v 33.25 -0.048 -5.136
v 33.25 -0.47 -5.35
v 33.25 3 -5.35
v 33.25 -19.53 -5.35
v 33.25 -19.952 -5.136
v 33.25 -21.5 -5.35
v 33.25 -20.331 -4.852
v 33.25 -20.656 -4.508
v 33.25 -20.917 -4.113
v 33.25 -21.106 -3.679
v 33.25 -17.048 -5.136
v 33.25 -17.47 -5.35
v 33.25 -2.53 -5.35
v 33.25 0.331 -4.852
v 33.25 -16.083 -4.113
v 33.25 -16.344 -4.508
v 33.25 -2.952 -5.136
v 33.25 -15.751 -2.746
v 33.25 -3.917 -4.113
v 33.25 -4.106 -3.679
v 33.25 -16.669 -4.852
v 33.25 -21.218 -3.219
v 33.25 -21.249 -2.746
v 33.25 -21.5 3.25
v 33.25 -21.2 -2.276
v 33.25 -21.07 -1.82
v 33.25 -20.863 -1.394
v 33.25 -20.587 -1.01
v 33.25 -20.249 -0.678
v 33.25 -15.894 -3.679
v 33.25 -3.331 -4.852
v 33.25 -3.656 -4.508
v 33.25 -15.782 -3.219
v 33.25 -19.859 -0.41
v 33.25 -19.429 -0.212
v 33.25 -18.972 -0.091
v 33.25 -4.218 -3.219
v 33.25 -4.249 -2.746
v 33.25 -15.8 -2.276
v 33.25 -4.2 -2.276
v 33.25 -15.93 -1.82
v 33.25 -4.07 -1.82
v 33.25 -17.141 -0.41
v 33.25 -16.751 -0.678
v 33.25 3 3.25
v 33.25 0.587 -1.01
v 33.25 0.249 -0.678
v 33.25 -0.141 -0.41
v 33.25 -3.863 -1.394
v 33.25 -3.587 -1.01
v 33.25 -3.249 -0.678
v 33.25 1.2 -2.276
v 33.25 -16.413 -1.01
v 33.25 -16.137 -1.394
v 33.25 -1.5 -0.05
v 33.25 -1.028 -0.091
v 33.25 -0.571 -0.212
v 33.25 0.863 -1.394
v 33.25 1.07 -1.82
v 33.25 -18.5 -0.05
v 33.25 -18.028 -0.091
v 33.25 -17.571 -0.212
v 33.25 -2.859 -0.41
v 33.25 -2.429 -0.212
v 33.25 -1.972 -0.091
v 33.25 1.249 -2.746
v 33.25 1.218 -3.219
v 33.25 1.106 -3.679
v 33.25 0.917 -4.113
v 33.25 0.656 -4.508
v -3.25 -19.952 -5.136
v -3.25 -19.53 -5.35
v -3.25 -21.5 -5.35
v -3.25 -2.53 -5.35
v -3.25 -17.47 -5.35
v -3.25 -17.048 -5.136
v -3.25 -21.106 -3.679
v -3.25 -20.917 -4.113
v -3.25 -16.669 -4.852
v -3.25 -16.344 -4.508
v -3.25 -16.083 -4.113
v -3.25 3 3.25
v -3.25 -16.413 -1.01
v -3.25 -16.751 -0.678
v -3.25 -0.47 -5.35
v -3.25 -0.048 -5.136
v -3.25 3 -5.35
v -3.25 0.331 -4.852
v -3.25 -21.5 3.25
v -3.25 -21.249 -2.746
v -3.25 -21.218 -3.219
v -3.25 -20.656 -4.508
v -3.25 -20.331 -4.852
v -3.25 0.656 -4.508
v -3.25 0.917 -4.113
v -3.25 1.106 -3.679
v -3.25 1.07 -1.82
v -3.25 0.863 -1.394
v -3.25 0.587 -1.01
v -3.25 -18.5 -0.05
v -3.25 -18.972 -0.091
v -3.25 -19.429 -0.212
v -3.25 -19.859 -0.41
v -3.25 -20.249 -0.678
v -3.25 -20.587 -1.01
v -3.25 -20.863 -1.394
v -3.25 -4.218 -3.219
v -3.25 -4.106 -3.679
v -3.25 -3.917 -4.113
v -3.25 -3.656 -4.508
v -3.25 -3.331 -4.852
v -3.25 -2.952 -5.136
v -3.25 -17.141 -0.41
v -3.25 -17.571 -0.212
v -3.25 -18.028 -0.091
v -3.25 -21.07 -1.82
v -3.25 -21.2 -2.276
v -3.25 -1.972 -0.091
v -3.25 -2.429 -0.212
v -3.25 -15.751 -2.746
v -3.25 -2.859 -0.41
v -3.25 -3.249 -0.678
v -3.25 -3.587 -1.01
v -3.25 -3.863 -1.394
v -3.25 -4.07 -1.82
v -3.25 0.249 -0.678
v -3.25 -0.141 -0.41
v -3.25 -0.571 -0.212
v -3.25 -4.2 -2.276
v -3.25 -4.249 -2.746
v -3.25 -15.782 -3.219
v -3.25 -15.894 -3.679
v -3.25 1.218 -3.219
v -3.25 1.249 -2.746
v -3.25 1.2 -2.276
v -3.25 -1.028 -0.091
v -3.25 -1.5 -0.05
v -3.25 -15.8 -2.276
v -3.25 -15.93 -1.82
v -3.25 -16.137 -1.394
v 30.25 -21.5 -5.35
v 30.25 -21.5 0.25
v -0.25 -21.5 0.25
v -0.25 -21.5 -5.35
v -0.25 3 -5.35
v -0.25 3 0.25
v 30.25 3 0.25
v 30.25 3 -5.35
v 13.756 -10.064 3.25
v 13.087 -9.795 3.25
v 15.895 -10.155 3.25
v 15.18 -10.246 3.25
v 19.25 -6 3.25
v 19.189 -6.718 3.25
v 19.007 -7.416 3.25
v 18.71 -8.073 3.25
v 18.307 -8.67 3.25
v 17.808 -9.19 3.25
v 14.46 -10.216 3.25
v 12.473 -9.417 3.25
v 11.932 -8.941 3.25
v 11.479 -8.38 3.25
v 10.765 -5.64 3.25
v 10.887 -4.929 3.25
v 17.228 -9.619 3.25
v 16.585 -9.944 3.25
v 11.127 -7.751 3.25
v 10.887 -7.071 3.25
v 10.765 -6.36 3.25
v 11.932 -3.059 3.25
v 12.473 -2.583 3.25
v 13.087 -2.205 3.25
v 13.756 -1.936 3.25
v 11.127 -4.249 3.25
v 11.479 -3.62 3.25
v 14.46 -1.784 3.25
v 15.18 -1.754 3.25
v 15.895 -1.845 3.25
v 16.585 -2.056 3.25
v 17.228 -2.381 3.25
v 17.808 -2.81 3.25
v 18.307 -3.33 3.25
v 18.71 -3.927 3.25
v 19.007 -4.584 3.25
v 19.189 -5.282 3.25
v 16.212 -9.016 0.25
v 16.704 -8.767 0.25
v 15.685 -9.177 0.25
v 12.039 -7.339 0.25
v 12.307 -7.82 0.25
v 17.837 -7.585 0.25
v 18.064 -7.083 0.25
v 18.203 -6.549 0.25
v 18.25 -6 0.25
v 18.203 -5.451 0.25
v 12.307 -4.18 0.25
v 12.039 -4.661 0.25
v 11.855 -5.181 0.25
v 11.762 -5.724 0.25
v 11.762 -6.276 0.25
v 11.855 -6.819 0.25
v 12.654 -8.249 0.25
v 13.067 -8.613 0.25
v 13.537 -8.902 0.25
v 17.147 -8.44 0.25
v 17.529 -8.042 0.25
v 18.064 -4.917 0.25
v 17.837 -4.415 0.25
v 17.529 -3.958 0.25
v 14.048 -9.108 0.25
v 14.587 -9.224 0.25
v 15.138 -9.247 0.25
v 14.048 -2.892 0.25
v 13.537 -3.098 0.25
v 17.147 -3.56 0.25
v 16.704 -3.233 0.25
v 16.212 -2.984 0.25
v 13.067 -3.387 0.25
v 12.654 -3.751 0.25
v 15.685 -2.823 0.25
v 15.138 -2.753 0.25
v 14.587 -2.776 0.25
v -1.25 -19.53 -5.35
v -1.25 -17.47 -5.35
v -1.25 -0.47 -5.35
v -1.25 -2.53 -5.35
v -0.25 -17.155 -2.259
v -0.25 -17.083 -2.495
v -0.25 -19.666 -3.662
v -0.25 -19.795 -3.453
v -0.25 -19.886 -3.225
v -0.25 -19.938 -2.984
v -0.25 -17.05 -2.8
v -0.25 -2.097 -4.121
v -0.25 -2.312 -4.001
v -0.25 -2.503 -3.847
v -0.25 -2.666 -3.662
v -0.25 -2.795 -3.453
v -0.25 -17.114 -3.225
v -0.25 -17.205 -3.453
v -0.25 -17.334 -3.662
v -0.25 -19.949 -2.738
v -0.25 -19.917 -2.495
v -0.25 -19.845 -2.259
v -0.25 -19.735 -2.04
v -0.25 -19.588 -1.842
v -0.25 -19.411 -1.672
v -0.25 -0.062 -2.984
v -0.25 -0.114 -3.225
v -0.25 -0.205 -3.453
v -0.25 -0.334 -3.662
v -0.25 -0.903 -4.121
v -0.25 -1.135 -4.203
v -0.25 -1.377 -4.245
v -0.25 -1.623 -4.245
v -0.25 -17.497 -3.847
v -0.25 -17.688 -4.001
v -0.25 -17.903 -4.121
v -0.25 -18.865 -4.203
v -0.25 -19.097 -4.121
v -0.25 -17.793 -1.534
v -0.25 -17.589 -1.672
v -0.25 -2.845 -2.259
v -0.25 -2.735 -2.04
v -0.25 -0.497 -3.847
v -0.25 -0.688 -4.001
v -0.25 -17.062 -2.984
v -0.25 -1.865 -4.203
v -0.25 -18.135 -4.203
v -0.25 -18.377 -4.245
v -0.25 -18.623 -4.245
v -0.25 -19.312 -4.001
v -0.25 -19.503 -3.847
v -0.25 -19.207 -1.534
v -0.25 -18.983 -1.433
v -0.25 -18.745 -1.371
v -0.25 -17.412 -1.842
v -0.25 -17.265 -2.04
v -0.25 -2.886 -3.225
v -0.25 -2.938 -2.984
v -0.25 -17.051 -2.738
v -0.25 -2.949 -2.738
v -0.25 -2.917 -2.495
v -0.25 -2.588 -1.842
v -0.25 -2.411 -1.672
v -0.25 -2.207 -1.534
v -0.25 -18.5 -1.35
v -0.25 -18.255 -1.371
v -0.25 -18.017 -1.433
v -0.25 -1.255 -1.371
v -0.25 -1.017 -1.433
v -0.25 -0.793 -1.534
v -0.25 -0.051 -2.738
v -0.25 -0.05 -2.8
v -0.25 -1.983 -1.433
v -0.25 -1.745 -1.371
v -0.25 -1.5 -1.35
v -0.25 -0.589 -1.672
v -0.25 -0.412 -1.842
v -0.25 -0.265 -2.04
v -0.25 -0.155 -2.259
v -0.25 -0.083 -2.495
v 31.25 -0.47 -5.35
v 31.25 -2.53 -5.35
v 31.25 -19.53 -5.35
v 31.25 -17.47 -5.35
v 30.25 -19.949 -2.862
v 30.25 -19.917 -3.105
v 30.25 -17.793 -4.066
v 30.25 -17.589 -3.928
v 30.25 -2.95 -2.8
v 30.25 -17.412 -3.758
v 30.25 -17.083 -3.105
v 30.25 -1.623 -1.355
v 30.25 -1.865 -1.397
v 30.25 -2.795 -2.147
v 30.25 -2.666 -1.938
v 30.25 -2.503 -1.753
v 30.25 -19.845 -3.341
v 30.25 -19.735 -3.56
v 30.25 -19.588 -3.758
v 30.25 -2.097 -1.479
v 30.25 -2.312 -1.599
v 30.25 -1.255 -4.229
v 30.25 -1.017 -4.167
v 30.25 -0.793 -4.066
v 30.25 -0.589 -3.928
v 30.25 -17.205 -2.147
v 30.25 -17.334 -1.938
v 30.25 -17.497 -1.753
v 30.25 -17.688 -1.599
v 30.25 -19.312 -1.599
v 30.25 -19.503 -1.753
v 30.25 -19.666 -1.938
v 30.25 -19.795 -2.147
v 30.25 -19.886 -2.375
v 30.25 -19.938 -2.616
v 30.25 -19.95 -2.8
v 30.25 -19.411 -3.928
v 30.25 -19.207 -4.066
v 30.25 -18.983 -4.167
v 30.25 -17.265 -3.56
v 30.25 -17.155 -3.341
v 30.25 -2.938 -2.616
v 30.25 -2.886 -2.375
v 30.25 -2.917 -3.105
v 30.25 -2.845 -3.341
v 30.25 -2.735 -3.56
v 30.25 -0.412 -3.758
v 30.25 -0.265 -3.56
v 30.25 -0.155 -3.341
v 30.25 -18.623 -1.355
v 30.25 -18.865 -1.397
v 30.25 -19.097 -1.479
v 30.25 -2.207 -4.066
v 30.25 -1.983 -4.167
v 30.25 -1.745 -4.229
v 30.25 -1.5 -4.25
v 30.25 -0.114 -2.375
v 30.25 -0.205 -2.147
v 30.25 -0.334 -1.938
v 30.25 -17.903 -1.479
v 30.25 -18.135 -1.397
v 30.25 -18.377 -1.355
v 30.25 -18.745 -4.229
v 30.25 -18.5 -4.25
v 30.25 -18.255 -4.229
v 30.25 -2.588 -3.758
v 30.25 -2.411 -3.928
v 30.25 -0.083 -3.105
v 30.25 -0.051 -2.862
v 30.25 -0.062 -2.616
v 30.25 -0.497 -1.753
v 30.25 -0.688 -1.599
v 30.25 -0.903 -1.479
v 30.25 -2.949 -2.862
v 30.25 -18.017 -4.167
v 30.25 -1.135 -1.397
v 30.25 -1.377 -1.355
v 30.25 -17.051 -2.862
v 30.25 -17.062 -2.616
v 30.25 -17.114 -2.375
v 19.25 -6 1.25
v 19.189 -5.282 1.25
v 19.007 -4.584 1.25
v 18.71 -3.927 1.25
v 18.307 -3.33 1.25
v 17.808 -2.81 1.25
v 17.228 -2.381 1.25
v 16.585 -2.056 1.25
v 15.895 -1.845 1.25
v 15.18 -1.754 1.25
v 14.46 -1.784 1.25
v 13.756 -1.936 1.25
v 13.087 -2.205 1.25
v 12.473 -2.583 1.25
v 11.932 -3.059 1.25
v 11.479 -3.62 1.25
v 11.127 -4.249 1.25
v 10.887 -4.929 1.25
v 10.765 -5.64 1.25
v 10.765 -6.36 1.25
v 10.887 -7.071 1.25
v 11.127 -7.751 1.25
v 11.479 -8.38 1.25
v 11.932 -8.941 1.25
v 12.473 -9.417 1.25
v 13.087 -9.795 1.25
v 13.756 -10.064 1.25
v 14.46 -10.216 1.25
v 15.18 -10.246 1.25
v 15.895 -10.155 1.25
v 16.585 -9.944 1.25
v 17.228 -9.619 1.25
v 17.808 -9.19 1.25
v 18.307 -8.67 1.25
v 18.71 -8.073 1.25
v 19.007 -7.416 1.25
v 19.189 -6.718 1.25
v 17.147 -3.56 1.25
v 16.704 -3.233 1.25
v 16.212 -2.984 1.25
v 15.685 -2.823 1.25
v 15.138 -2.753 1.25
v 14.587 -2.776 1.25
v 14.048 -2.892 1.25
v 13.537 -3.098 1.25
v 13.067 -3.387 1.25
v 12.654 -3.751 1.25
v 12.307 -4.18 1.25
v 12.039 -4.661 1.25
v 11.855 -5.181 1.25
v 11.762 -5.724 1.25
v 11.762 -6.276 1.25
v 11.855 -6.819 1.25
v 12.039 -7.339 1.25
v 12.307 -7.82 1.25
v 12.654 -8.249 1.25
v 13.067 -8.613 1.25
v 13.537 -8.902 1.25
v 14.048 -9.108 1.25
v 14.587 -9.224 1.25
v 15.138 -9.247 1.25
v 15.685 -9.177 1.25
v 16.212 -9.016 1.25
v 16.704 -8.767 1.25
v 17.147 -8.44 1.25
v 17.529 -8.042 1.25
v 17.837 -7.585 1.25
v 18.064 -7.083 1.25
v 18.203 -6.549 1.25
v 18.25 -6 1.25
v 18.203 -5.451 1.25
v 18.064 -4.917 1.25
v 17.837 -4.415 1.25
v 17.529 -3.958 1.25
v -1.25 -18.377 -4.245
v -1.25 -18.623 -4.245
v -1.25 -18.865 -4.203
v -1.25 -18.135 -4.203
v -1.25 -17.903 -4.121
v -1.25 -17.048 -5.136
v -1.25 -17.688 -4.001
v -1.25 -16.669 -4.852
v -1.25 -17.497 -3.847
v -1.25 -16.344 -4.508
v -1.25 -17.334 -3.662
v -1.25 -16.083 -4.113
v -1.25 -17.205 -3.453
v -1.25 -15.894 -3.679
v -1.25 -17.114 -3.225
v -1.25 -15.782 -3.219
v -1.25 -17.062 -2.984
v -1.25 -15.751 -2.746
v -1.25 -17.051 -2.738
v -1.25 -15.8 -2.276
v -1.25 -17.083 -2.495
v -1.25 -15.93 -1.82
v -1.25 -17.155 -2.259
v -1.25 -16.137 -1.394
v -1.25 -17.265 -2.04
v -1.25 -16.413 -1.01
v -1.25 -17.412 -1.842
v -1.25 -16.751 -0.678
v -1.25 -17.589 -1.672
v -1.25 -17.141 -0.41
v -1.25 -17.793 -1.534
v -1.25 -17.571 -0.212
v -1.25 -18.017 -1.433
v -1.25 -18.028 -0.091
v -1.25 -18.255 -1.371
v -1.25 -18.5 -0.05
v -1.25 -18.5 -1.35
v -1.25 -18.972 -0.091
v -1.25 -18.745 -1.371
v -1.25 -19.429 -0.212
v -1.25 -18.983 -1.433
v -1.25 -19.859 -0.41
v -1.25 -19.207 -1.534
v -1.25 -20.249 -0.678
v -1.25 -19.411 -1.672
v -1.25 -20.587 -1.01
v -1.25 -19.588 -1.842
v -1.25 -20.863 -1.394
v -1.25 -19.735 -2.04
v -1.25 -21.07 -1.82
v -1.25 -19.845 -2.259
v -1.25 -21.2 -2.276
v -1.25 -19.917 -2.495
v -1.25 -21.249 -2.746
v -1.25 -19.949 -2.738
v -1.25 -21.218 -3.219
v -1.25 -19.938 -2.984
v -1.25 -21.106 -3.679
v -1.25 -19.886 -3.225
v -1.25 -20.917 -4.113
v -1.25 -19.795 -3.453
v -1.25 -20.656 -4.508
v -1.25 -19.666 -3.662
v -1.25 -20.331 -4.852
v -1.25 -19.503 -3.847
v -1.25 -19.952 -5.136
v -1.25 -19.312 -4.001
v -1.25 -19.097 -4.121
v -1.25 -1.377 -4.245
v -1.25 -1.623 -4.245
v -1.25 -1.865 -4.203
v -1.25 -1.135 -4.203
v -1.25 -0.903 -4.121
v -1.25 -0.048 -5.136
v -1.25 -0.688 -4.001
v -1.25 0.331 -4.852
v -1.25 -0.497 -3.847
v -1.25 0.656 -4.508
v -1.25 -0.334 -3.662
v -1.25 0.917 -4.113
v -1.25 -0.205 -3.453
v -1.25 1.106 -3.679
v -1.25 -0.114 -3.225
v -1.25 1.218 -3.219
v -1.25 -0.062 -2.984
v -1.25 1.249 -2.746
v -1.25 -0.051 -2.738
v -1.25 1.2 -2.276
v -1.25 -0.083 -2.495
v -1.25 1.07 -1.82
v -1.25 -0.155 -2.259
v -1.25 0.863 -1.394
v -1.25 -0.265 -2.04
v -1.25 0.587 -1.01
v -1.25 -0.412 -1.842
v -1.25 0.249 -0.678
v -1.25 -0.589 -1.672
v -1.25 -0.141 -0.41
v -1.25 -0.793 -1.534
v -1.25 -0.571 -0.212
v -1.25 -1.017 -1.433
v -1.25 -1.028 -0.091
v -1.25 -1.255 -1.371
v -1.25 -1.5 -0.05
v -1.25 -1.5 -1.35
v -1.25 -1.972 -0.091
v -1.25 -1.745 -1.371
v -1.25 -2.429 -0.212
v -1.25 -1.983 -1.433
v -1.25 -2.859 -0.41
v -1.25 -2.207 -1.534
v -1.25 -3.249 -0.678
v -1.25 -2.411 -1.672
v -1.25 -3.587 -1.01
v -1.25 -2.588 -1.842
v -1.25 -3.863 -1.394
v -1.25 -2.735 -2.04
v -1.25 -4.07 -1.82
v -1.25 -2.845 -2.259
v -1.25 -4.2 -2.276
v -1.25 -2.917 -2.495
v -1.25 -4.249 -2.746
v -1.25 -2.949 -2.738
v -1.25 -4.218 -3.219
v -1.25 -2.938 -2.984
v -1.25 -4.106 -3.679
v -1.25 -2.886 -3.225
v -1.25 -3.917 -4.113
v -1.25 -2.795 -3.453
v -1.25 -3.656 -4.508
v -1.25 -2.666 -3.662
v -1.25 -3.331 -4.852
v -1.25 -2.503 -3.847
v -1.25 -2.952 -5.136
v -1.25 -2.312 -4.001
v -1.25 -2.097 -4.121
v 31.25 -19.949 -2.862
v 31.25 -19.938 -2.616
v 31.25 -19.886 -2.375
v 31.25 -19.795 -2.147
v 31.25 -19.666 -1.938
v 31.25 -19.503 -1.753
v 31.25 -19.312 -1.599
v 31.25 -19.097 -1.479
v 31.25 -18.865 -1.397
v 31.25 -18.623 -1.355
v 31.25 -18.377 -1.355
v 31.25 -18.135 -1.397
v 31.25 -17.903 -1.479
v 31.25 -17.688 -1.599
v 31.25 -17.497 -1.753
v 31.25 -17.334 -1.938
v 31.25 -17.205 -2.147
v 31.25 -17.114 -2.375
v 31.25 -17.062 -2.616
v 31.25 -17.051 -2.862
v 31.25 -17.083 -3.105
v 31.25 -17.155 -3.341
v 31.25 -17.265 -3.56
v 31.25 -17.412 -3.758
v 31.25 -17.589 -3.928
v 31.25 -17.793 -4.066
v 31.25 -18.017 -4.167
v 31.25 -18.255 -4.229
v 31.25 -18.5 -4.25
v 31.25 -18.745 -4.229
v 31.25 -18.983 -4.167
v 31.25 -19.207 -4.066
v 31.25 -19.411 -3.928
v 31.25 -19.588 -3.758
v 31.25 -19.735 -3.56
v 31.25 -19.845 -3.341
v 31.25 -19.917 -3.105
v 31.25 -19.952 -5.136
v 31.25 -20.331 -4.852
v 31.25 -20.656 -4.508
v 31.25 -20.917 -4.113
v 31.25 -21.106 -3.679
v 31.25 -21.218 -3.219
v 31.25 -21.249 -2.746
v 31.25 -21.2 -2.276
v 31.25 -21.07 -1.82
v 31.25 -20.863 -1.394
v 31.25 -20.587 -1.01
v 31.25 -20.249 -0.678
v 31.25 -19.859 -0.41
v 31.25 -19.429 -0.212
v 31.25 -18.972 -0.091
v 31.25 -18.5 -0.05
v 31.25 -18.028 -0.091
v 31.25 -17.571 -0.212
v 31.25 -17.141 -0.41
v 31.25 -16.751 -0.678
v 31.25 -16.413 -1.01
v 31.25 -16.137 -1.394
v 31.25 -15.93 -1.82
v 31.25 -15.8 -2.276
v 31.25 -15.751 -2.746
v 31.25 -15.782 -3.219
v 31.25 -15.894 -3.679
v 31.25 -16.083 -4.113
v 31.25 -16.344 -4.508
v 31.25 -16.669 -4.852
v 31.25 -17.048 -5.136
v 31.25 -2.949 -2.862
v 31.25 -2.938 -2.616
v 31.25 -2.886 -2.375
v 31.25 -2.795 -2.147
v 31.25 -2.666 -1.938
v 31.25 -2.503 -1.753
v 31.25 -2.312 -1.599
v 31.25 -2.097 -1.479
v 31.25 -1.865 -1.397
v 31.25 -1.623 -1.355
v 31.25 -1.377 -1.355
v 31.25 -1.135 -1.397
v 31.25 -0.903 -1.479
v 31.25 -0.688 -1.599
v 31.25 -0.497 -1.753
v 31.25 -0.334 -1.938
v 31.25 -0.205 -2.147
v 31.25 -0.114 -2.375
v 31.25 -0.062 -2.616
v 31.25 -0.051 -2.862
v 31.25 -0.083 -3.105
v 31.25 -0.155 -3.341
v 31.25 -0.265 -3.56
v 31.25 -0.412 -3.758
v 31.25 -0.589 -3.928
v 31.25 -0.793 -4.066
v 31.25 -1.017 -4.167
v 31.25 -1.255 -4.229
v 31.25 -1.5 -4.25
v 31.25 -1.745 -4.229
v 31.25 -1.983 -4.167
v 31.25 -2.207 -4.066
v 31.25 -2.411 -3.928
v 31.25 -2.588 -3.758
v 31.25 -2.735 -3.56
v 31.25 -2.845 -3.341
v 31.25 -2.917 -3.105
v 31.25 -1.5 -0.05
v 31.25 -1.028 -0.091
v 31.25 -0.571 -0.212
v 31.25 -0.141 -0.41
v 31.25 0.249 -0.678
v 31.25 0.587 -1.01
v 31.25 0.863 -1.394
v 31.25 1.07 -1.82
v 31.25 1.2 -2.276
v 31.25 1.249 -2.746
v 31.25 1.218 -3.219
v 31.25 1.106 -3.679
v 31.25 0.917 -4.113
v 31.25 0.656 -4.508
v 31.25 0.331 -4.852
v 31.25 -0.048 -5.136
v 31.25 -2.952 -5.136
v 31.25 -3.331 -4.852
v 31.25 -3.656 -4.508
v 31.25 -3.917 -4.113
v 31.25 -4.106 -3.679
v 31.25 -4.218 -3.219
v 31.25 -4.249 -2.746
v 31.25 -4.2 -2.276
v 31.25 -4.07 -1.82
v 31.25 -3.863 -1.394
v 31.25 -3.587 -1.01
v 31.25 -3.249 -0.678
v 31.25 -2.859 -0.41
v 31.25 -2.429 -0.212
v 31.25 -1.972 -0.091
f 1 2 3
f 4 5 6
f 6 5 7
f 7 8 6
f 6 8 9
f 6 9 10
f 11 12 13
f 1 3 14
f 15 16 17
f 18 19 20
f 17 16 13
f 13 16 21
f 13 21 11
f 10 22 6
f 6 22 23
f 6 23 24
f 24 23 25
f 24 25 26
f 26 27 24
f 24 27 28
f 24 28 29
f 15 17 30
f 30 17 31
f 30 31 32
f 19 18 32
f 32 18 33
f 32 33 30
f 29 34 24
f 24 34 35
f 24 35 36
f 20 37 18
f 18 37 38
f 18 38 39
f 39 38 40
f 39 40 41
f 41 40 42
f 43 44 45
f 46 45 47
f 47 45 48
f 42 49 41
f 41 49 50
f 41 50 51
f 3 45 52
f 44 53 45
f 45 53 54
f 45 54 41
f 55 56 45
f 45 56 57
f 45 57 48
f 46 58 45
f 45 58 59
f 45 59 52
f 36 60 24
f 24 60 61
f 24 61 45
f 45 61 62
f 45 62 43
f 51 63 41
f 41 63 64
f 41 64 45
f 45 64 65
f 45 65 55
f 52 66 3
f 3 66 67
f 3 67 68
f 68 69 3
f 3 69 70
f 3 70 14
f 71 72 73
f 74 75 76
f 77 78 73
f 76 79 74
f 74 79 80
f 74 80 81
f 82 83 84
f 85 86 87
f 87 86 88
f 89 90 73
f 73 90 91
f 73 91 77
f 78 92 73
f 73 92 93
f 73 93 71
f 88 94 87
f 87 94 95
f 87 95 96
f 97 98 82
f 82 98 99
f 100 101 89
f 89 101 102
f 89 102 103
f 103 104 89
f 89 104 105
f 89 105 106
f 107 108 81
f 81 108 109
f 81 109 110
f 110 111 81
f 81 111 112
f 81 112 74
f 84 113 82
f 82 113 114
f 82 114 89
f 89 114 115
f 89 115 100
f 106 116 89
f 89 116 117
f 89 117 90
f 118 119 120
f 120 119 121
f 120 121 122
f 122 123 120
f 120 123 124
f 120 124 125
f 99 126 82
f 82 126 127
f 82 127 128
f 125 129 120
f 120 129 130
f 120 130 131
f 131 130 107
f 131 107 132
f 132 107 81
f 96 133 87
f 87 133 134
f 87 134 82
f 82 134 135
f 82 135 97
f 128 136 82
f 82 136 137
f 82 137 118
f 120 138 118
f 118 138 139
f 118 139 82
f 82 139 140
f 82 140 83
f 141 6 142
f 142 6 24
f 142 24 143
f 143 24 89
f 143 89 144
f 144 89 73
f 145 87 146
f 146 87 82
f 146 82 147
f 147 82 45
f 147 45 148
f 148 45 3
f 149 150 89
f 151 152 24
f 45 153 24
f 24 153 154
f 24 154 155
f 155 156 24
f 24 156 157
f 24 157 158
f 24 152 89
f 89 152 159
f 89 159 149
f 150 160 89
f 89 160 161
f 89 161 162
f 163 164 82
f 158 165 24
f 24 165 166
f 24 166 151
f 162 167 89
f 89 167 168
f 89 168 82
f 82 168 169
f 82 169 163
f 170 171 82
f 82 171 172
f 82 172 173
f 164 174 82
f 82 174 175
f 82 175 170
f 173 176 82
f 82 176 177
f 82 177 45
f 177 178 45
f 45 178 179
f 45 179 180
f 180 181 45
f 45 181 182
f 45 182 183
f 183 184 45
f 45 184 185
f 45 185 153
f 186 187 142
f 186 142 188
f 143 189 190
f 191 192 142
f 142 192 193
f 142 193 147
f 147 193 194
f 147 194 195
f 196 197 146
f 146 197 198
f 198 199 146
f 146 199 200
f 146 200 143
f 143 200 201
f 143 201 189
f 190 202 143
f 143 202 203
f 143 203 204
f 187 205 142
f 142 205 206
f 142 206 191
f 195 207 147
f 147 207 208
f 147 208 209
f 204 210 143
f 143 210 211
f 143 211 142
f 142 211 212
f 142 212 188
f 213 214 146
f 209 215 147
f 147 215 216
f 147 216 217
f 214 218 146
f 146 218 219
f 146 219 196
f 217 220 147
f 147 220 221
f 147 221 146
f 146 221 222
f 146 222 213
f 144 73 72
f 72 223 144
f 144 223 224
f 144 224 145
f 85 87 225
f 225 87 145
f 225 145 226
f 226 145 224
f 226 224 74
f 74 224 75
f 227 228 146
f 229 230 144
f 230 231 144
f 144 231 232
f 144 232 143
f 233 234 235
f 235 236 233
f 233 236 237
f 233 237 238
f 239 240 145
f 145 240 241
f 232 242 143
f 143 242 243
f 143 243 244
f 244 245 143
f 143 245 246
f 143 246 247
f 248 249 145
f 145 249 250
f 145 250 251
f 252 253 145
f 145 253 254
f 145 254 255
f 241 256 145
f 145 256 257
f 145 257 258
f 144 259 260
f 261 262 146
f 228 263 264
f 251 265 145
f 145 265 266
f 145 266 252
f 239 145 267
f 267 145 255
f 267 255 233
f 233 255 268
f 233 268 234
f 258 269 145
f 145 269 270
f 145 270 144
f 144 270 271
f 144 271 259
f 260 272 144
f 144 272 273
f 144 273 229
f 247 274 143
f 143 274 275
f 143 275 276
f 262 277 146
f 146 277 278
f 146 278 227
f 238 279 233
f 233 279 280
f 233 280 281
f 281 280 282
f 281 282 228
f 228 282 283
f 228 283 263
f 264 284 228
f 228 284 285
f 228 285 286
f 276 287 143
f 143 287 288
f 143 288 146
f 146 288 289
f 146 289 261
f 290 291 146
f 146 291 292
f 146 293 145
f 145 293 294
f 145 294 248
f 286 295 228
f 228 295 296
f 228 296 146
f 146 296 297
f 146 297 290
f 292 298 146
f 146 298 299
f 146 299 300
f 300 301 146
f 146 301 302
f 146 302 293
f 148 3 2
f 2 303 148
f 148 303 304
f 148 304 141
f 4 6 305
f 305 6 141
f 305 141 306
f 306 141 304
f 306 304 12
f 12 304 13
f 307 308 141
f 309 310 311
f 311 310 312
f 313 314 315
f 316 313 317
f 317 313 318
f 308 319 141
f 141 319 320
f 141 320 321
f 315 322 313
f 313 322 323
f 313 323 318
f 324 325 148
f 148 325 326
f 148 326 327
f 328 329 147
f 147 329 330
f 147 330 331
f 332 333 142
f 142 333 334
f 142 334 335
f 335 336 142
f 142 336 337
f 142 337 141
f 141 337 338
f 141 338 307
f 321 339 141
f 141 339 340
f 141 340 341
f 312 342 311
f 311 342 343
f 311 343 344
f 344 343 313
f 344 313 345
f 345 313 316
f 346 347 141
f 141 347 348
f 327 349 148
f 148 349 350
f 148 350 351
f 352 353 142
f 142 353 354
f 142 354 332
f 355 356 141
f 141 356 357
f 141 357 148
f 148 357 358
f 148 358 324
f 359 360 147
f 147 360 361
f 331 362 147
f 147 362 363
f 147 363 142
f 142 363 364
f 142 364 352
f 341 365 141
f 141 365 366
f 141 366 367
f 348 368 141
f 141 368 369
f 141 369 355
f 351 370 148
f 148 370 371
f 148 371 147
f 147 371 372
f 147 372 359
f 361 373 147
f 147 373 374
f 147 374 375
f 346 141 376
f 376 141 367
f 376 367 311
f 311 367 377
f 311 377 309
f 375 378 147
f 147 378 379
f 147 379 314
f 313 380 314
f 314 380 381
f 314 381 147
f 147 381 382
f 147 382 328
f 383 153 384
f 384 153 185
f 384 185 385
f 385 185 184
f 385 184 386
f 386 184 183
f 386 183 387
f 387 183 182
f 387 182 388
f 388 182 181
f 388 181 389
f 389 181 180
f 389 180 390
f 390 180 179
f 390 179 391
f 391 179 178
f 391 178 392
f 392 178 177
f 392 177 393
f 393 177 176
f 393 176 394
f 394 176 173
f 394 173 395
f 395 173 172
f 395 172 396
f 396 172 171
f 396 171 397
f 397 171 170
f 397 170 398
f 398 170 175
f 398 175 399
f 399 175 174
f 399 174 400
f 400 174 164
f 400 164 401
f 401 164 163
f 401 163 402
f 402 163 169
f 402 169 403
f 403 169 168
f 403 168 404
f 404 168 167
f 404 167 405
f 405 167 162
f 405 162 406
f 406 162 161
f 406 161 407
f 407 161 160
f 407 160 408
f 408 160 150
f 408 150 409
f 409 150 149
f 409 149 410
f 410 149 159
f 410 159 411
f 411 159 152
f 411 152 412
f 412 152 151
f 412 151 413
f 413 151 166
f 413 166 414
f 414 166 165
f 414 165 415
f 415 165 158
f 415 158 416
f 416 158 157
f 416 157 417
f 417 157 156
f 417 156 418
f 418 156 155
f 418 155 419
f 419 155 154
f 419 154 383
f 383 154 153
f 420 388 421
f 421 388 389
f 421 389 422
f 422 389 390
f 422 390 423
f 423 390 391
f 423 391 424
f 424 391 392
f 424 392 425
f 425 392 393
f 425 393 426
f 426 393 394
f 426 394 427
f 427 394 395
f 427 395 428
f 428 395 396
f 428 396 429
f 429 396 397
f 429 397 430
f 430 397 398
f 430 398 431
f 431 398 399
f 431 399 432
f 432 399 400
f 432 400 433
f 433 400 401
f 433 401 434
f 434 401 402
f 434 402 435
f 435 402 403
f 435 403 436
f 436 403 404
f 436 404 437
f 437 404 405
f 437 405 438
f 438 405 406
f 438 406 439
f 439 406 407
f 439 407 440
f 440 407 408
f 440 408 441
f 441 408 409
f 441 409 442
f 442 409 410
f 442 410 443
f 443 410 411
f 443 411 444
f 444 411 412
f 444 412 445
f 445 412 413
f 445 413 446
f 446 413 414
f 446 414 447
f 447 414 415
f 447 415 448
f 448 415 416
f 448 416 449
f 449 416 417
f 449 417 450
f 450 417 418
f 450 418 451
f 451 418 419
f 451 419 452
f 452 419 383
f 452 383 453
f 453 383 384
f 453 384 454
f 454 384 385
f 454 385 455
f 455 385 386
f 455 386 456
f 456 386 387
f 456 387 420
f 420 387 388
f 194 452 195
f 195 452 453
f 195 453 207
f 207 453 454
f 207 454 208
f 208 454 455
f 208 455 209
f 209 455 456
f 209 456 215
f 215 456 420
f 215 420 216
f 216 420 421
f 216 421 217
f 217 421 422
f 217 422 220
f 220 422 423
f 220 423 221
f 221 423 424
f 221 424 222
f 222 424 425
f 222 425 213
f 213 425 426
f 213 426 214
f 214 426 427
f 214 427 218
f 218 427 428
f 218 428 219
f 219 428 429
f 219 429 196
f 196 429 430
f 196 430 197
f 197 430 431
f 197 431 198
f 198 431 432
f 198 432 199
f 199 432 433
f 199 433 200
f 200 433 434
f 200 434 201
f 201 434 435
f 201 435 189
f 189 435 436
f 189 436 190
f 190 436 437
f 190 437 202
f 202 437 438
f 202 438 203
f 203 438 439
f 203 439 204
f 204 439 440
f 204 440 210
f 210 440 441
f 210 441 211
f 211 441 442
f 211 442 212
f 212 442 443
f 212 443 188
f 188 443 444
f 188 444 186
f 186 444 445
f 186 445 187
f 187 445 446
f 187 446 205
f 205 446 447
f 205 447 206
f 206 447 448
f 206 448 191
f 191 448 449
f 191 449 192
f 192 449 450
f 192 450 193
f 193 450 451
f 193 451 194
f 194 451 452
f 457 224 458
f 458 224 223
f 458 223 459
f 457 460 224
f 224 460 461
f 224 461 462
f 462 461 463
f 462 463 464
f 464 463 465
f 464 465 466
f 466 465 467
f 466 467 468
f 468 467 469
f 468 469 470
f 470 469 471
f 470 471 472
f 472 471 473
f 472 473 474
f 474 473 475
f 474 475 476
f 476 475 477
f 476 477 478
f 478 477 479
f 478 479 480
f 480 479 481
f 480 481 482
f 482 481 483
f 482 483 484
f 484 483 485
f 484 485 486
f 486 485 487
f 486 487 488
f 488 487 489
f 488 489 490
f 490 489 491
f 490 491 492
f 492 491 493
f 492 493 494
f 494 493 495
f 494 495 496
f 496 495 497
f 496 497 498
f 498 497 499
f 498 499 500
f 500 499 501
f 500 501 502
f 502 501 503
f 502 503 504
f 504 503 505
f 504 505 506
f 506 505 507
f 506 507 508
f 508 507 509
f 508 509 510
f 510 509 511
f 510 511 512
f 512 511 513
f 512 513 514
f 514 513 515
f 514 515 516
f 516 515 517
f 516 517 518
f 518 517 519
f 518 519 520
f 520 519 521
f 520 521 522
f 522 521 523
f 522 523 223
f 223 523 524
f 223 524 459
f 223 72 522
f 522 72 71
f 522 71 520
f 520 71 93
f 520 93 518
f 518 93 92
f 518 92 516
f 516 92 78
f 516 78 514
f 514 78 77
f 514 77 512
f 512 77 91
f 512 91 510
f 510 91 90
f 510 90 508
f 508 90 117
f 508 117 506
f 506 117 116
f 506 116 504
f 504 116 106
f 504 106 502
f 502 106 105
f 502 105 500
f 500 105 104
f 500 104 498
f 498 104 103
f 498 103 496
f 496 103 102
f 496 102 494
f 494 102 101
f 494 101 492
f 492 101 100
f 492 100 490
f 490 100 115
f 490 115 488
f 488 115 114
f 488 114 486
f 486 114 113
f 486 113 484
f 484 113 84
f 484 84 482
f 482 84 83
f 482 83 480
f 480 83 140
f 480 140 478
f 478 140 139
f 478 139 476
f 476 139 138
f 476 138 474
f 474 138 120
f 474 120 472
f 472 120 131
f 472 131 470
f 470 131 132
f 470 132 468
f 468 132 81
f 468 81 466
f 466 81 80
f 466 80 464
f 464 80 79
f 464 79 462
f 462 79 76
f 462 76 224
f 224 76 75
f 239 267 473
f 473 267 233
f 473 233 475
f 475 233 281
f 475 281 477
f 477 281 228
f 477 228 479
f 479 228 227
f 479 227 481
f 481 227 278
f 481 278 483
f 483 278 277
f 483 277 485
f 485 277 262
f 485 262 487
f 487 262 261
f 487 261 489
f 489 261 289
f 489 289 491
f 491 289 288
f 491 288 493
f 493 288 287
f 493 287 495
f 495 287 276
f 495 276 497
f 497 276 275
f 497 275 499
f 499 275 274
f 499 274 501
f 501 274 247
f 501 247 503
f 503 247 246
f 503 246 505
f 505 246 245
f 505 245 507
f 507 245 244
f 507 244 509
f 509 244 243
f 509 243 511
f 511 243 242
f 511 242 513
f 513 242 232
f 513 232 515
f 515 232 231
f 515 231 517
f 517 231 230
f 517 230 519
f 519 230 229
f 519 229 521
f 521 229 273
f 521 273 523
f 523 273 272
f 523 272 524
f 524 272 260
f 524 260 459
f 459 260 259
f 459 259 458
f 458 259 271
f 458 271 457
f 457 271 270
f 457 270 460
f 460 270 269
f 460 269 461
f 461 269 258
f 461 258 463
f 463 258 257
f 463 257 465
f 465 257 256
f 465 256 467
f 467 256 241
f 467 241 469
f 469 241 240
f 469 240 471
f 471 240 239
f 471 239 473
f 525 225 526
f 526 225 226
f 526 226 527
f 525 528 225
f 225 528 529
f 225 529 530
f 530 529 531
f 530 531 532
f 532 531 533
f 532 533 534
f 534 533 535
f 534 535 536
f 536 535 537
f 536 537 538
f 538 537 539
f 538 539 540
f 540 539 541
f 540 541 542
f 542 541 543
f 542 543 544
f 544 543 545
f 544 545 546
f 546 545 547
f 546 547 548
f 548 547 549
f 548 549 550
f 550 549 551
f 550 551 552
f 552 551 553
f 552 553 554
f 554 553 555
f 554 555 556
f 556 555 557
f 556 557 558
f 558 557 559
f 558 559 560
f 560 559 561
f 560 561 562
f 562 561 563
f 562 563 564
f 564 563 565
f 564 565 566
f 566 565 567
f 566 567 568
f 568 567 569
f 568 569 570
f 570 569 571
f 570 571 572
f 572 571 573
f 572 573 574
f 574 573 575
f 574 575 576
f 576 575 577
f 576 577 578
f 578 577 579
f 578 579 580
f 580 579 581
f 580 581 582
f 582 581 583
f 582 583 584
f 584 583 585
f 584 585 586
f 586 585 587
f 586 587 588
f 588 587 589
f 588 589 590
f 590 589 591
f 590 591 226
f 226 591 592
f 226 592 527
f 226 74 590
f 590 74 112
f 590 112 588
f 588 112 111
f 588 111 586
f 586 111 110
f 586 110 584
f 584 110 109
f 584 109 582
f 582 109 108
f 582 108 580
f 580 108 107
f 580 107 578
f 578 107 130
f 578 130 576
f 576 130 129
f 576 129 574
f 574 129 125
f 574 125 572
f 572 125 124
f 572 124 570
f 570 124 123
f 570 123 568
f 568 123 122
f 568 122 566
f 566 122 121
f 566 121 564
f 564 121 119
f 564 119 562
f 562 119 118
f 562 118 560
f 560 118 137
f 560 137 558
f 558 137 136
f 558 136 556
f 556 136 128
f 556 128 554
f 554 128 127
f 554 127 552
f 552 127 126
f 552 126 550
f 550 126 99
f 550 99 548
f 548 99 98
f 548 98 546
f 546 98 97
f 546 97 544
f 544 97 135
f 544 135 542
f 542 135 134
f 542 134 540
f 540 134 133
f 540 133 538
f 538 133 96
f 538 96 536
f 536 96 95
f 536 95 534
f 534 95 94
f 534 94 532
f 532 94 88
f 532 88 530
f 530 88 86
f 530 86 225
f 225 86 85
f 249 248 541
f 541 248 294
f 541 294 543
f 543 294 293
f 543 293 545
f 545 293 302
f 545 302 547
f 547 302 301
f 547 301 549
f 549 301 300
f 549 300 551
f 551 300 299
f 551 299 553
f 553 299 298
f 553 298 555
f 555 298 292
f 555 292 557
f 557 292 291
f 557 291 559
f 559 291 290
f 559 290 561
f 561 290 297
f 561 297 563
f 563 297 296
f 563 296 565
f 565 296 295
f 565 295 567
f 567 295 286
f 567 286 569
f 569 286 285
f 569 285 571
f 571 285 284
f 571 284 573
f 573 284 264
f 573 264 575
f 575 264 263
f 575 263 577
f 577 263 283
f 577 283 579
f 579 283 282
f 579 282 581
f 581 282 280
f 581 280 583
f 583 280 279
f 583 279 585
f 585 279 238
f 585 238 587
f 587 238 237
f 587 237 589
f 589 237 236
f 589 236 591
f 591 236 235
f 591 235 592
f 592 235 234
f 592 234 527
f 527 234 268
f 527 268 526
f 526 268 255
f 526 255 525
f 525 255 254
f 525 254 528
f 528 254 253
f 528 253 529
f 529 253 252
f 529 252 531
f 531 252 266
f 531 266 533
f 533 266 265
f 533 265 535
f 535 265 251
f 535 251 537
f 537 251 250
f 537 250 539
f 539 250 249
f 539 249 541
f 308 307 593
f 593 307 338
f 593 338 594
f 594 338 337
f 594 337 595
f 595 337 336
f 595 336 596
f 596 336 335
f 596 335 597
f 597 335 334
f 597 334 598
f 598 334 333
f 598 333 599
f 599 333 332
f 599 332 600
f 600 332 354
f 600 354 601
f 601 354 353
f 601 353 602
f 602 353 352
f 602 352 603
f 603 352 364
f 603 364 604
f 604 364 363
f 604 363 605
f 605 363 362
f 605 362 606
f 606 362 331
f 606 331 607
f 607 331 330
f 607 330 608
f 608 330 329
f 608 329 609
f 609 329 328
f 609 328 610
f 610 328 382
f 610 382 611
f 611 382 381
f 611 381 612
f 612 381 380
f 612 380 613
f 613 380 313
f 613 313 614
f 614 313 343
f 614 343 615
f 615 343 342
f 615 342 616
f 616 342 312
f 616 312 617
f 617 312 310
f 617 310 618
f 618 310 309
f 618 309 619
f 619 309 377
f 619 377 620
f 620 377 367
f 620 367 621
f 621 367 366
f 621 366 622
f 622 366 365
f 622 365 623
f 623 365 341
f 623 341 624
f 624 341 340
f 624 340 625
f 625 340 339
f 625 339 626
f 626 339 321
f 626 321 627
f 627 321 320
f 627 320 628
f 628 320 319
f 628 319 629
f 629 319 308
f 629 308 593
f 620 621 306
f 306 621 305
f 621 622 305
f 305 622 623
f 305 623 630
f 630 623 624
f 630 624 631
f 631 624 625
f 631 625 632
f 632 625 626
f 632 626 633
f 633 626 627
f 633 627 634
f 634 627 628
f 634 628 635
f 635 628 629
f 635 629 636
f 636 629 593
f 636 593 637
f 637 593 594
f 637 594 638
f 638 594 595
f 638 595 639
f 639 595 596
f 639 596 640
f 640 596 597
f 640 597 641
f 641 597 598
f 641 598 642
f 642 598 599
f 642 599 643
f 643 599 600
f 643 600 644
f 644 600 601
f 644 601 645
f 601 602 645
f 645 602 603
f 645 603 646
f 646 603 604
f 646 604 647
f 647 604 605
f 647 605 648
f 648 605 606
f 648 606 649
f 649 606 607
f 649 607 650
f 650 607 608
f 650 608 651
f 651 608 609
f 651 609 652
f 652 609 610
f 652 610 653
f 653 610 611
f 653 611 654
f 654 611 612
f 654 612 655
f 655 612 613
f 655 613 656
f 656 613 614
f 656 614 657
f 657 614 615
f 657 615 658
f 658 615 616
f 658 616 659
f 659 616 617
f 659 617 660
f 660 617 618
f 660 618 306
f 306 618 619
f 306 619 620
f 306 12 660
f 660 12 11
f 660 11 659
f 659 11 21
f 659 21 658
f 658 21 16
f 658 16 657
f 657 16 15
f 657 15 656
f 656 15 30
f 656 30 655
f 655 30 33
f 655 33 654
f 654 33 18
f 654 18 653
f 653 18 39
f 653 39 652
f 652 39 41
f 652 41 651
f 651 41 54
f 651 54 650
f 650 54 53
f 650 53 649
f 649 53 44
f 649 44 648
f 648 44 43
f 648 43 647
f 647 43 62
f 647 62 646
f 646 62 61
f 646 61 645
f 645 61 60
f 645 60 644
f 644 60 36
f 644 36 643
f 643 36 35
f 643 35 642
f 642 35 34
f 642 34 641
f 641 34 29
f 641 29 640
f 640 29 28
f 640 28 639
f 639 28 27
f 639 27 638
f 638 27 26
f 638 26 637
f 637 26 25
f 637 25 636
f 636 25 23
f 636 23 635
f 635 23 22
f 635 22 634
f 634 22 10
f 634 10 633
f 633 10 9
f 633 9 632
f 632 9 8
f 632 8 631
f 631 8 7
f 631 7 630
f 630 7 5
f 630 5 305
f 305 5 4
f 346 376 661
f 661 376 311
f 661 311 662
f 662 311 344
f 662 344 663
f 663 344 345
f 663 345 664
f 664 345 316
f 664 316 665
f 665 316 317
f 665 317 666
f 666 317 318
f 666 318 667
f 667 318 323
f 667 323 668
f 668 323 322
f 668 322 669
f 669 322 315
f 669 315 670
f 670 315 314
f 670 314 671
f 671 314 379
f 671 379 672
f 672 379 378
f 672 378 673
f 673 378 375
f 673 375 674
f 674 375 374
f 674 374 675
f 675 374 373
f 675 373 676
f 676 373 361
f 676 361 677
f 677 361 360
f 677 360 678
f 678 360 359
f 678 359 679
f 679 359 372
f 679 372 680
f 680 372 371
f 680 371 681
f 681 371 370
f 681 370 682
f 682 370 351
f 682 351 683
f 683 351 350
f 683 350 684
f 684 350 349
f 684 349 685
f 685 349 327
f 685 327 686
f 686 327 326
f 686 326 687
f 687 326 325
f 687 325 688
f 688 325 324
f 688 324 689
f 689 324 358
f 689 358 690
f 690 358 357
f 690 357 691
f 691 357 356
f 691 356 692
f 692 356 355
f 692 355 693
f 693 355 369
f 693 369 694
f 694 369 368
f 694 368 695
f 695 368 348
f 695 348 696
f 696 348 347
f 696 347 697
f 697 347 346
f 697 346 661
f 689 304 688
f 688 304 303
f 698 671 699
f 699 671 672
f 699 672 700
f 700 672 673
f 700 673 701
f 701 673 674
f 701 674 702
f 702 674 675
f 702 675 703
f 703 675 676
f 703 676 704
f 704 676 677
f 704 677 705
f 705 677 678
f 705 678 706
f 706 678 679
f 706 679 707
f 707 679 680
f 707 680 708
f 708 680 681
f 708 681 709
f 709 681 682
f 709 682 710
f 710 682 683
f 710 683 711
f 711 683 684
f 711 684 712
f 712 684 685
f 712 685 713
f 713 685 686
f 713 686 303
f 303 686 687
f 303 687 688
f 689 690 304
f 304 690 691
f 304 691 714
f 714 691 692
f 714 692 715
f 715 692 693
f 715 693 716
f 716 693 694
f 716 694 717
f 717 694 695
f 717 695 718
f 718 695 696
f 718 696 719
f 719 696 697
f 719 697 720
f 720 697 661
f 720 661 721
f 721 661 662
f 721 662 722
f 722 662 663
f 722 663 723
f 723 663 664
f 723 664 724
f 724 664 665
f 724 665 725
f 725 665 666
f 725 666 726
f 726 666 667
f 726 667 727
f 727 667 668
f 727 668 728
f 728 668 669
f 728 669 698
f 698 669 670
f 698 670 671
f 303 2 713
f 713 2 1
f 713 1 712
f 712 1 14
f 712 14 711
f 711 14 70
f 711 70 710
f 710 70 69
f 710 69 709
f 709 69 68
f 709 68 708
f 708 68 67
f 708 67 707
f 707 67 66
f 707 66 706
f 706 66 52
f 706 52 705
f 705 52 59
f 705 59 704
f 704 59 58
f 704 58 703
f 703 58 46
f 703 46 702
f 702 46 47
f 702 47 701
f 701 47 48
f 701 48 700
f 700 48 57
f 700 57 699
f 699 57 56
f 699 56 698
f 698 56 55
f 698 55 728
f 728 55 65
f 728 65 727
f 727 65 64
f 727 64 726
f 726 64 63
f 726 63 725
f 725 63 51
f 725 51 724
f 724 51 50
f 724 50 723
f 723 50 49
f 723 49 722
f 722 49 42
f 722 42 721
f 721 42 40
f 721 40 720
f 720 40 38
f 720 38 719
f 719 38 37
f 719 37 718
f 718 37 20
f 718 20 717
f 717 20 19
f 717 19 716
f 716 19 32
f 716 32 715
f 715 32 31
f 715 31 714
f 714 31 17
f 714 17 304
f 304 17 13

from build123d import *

# Parameters (mm, degrees)
RESSALTO_EXTRUS_O1_START         = 0.25
ESBO_O2_W                        = 30.5
ESBO_O2_H                        = 24.5
RESSALTO_EXTRUS_O1_DEPTH         = 3
ESBO_O3_W                        = 8.6
ESBO_O3_H                        = 24.5
RESSALTO_EXTRUS_O2_DEPTH         = 3
ESBO_O5_R                        = 4.25
CORTE_EXTRUS_O1_DEPTH            = 2
ESBO_O12_R                       = 3.25
CORTE_EXTRUS_O3_DEPTH            = 41.141904539
CBORE_FOR_M2_5_SHCS1_D           = 2.9
CBORE_FOR_M2_5_SHCS1_DEPTH       = 3
CBORE_FOR_M2_5_SHCS1_CBORE_D     = 5.5
CBORE_FOR_M2_5_SHCS1_CBORE_DEPTH = 2


with BuildPart() as part:
    # Esboço2 → Ressalto-extrusão1 (new body)
    with BuildSketch(Plane.XY.offset(RESSALTO_EXTRUS_O1_START)):
        with Locations((15, -9.25)):
            Rectangle(ESBO_O2_W, ESBO_O2_H)
    extrude(amount=RESSALTO_EXTRUS_O1_DEPTH)

    # Esboço3 → Ressalto-extrusão2 (add)
    with BuildSketch(Plane.ZY.offset(0.25)):
        with Locations((-1.05, -9.25)):
            Rectangle(ESBO_O3_W, ESBO_O3_H)
    ressalto_extrus_o2 = extrude(amount=RESSALTO_EXTRUS_O2_DEPTH)

    # Espelhar1: Ressalto-extrusão2 across plane
    add(ressalto_extrus_o2.mirror(Plane.ZY.offset(-15)))

    # Esboço5 → Corte-extrusão1 (cut)
    with BuildSketch(Plane.XY.offset(3.25)):
        with Locations((15, -6)):
            Circle(ESBO_O5_R)
    extrude(amount=-CORTE_EXTRUS_O1_DEPTH, mode=Mode.SUBTRACT)

    # Esboço12 → Corte-extrusão3 (cut, through all)
    with BuildSketch(Plane.XY.offset(1.25)):
        with Locations((15, -6)):
            Circle(ESBO_O12_R)
    extrude(amount=-CORTE_EXTRUS_O3_DEPTH, mode=Mode.SUBTRACT)

    # CBORE for M2.5 SHCS1
    with Locations(Plane.ZY.offset(3.25)):
        with Locations((-2.8, -1.5), (-2.8, -18.5)):
            cbore_for_m2_5_shcs1 = CounterBoreHole(CBORE_FOR_M2_5_SHCS1_D / 2, CBORE_FOR_M2_5_SHCS1_CBORE_D / 2, CBORE_FOR_M2_5_SHCS1_CBORE_DEPTH, depth=CBORE_FOR_M2_5_SHCS1_DEPTH)

    # Mirror1: CBORE for M2.5 SHCS1 across plane
    add(cbore_for_m2_5_shcs1.mirror(Plane.ZY.offset(-15)), mode=Mode.SUBTRACT)


solid = part.part
